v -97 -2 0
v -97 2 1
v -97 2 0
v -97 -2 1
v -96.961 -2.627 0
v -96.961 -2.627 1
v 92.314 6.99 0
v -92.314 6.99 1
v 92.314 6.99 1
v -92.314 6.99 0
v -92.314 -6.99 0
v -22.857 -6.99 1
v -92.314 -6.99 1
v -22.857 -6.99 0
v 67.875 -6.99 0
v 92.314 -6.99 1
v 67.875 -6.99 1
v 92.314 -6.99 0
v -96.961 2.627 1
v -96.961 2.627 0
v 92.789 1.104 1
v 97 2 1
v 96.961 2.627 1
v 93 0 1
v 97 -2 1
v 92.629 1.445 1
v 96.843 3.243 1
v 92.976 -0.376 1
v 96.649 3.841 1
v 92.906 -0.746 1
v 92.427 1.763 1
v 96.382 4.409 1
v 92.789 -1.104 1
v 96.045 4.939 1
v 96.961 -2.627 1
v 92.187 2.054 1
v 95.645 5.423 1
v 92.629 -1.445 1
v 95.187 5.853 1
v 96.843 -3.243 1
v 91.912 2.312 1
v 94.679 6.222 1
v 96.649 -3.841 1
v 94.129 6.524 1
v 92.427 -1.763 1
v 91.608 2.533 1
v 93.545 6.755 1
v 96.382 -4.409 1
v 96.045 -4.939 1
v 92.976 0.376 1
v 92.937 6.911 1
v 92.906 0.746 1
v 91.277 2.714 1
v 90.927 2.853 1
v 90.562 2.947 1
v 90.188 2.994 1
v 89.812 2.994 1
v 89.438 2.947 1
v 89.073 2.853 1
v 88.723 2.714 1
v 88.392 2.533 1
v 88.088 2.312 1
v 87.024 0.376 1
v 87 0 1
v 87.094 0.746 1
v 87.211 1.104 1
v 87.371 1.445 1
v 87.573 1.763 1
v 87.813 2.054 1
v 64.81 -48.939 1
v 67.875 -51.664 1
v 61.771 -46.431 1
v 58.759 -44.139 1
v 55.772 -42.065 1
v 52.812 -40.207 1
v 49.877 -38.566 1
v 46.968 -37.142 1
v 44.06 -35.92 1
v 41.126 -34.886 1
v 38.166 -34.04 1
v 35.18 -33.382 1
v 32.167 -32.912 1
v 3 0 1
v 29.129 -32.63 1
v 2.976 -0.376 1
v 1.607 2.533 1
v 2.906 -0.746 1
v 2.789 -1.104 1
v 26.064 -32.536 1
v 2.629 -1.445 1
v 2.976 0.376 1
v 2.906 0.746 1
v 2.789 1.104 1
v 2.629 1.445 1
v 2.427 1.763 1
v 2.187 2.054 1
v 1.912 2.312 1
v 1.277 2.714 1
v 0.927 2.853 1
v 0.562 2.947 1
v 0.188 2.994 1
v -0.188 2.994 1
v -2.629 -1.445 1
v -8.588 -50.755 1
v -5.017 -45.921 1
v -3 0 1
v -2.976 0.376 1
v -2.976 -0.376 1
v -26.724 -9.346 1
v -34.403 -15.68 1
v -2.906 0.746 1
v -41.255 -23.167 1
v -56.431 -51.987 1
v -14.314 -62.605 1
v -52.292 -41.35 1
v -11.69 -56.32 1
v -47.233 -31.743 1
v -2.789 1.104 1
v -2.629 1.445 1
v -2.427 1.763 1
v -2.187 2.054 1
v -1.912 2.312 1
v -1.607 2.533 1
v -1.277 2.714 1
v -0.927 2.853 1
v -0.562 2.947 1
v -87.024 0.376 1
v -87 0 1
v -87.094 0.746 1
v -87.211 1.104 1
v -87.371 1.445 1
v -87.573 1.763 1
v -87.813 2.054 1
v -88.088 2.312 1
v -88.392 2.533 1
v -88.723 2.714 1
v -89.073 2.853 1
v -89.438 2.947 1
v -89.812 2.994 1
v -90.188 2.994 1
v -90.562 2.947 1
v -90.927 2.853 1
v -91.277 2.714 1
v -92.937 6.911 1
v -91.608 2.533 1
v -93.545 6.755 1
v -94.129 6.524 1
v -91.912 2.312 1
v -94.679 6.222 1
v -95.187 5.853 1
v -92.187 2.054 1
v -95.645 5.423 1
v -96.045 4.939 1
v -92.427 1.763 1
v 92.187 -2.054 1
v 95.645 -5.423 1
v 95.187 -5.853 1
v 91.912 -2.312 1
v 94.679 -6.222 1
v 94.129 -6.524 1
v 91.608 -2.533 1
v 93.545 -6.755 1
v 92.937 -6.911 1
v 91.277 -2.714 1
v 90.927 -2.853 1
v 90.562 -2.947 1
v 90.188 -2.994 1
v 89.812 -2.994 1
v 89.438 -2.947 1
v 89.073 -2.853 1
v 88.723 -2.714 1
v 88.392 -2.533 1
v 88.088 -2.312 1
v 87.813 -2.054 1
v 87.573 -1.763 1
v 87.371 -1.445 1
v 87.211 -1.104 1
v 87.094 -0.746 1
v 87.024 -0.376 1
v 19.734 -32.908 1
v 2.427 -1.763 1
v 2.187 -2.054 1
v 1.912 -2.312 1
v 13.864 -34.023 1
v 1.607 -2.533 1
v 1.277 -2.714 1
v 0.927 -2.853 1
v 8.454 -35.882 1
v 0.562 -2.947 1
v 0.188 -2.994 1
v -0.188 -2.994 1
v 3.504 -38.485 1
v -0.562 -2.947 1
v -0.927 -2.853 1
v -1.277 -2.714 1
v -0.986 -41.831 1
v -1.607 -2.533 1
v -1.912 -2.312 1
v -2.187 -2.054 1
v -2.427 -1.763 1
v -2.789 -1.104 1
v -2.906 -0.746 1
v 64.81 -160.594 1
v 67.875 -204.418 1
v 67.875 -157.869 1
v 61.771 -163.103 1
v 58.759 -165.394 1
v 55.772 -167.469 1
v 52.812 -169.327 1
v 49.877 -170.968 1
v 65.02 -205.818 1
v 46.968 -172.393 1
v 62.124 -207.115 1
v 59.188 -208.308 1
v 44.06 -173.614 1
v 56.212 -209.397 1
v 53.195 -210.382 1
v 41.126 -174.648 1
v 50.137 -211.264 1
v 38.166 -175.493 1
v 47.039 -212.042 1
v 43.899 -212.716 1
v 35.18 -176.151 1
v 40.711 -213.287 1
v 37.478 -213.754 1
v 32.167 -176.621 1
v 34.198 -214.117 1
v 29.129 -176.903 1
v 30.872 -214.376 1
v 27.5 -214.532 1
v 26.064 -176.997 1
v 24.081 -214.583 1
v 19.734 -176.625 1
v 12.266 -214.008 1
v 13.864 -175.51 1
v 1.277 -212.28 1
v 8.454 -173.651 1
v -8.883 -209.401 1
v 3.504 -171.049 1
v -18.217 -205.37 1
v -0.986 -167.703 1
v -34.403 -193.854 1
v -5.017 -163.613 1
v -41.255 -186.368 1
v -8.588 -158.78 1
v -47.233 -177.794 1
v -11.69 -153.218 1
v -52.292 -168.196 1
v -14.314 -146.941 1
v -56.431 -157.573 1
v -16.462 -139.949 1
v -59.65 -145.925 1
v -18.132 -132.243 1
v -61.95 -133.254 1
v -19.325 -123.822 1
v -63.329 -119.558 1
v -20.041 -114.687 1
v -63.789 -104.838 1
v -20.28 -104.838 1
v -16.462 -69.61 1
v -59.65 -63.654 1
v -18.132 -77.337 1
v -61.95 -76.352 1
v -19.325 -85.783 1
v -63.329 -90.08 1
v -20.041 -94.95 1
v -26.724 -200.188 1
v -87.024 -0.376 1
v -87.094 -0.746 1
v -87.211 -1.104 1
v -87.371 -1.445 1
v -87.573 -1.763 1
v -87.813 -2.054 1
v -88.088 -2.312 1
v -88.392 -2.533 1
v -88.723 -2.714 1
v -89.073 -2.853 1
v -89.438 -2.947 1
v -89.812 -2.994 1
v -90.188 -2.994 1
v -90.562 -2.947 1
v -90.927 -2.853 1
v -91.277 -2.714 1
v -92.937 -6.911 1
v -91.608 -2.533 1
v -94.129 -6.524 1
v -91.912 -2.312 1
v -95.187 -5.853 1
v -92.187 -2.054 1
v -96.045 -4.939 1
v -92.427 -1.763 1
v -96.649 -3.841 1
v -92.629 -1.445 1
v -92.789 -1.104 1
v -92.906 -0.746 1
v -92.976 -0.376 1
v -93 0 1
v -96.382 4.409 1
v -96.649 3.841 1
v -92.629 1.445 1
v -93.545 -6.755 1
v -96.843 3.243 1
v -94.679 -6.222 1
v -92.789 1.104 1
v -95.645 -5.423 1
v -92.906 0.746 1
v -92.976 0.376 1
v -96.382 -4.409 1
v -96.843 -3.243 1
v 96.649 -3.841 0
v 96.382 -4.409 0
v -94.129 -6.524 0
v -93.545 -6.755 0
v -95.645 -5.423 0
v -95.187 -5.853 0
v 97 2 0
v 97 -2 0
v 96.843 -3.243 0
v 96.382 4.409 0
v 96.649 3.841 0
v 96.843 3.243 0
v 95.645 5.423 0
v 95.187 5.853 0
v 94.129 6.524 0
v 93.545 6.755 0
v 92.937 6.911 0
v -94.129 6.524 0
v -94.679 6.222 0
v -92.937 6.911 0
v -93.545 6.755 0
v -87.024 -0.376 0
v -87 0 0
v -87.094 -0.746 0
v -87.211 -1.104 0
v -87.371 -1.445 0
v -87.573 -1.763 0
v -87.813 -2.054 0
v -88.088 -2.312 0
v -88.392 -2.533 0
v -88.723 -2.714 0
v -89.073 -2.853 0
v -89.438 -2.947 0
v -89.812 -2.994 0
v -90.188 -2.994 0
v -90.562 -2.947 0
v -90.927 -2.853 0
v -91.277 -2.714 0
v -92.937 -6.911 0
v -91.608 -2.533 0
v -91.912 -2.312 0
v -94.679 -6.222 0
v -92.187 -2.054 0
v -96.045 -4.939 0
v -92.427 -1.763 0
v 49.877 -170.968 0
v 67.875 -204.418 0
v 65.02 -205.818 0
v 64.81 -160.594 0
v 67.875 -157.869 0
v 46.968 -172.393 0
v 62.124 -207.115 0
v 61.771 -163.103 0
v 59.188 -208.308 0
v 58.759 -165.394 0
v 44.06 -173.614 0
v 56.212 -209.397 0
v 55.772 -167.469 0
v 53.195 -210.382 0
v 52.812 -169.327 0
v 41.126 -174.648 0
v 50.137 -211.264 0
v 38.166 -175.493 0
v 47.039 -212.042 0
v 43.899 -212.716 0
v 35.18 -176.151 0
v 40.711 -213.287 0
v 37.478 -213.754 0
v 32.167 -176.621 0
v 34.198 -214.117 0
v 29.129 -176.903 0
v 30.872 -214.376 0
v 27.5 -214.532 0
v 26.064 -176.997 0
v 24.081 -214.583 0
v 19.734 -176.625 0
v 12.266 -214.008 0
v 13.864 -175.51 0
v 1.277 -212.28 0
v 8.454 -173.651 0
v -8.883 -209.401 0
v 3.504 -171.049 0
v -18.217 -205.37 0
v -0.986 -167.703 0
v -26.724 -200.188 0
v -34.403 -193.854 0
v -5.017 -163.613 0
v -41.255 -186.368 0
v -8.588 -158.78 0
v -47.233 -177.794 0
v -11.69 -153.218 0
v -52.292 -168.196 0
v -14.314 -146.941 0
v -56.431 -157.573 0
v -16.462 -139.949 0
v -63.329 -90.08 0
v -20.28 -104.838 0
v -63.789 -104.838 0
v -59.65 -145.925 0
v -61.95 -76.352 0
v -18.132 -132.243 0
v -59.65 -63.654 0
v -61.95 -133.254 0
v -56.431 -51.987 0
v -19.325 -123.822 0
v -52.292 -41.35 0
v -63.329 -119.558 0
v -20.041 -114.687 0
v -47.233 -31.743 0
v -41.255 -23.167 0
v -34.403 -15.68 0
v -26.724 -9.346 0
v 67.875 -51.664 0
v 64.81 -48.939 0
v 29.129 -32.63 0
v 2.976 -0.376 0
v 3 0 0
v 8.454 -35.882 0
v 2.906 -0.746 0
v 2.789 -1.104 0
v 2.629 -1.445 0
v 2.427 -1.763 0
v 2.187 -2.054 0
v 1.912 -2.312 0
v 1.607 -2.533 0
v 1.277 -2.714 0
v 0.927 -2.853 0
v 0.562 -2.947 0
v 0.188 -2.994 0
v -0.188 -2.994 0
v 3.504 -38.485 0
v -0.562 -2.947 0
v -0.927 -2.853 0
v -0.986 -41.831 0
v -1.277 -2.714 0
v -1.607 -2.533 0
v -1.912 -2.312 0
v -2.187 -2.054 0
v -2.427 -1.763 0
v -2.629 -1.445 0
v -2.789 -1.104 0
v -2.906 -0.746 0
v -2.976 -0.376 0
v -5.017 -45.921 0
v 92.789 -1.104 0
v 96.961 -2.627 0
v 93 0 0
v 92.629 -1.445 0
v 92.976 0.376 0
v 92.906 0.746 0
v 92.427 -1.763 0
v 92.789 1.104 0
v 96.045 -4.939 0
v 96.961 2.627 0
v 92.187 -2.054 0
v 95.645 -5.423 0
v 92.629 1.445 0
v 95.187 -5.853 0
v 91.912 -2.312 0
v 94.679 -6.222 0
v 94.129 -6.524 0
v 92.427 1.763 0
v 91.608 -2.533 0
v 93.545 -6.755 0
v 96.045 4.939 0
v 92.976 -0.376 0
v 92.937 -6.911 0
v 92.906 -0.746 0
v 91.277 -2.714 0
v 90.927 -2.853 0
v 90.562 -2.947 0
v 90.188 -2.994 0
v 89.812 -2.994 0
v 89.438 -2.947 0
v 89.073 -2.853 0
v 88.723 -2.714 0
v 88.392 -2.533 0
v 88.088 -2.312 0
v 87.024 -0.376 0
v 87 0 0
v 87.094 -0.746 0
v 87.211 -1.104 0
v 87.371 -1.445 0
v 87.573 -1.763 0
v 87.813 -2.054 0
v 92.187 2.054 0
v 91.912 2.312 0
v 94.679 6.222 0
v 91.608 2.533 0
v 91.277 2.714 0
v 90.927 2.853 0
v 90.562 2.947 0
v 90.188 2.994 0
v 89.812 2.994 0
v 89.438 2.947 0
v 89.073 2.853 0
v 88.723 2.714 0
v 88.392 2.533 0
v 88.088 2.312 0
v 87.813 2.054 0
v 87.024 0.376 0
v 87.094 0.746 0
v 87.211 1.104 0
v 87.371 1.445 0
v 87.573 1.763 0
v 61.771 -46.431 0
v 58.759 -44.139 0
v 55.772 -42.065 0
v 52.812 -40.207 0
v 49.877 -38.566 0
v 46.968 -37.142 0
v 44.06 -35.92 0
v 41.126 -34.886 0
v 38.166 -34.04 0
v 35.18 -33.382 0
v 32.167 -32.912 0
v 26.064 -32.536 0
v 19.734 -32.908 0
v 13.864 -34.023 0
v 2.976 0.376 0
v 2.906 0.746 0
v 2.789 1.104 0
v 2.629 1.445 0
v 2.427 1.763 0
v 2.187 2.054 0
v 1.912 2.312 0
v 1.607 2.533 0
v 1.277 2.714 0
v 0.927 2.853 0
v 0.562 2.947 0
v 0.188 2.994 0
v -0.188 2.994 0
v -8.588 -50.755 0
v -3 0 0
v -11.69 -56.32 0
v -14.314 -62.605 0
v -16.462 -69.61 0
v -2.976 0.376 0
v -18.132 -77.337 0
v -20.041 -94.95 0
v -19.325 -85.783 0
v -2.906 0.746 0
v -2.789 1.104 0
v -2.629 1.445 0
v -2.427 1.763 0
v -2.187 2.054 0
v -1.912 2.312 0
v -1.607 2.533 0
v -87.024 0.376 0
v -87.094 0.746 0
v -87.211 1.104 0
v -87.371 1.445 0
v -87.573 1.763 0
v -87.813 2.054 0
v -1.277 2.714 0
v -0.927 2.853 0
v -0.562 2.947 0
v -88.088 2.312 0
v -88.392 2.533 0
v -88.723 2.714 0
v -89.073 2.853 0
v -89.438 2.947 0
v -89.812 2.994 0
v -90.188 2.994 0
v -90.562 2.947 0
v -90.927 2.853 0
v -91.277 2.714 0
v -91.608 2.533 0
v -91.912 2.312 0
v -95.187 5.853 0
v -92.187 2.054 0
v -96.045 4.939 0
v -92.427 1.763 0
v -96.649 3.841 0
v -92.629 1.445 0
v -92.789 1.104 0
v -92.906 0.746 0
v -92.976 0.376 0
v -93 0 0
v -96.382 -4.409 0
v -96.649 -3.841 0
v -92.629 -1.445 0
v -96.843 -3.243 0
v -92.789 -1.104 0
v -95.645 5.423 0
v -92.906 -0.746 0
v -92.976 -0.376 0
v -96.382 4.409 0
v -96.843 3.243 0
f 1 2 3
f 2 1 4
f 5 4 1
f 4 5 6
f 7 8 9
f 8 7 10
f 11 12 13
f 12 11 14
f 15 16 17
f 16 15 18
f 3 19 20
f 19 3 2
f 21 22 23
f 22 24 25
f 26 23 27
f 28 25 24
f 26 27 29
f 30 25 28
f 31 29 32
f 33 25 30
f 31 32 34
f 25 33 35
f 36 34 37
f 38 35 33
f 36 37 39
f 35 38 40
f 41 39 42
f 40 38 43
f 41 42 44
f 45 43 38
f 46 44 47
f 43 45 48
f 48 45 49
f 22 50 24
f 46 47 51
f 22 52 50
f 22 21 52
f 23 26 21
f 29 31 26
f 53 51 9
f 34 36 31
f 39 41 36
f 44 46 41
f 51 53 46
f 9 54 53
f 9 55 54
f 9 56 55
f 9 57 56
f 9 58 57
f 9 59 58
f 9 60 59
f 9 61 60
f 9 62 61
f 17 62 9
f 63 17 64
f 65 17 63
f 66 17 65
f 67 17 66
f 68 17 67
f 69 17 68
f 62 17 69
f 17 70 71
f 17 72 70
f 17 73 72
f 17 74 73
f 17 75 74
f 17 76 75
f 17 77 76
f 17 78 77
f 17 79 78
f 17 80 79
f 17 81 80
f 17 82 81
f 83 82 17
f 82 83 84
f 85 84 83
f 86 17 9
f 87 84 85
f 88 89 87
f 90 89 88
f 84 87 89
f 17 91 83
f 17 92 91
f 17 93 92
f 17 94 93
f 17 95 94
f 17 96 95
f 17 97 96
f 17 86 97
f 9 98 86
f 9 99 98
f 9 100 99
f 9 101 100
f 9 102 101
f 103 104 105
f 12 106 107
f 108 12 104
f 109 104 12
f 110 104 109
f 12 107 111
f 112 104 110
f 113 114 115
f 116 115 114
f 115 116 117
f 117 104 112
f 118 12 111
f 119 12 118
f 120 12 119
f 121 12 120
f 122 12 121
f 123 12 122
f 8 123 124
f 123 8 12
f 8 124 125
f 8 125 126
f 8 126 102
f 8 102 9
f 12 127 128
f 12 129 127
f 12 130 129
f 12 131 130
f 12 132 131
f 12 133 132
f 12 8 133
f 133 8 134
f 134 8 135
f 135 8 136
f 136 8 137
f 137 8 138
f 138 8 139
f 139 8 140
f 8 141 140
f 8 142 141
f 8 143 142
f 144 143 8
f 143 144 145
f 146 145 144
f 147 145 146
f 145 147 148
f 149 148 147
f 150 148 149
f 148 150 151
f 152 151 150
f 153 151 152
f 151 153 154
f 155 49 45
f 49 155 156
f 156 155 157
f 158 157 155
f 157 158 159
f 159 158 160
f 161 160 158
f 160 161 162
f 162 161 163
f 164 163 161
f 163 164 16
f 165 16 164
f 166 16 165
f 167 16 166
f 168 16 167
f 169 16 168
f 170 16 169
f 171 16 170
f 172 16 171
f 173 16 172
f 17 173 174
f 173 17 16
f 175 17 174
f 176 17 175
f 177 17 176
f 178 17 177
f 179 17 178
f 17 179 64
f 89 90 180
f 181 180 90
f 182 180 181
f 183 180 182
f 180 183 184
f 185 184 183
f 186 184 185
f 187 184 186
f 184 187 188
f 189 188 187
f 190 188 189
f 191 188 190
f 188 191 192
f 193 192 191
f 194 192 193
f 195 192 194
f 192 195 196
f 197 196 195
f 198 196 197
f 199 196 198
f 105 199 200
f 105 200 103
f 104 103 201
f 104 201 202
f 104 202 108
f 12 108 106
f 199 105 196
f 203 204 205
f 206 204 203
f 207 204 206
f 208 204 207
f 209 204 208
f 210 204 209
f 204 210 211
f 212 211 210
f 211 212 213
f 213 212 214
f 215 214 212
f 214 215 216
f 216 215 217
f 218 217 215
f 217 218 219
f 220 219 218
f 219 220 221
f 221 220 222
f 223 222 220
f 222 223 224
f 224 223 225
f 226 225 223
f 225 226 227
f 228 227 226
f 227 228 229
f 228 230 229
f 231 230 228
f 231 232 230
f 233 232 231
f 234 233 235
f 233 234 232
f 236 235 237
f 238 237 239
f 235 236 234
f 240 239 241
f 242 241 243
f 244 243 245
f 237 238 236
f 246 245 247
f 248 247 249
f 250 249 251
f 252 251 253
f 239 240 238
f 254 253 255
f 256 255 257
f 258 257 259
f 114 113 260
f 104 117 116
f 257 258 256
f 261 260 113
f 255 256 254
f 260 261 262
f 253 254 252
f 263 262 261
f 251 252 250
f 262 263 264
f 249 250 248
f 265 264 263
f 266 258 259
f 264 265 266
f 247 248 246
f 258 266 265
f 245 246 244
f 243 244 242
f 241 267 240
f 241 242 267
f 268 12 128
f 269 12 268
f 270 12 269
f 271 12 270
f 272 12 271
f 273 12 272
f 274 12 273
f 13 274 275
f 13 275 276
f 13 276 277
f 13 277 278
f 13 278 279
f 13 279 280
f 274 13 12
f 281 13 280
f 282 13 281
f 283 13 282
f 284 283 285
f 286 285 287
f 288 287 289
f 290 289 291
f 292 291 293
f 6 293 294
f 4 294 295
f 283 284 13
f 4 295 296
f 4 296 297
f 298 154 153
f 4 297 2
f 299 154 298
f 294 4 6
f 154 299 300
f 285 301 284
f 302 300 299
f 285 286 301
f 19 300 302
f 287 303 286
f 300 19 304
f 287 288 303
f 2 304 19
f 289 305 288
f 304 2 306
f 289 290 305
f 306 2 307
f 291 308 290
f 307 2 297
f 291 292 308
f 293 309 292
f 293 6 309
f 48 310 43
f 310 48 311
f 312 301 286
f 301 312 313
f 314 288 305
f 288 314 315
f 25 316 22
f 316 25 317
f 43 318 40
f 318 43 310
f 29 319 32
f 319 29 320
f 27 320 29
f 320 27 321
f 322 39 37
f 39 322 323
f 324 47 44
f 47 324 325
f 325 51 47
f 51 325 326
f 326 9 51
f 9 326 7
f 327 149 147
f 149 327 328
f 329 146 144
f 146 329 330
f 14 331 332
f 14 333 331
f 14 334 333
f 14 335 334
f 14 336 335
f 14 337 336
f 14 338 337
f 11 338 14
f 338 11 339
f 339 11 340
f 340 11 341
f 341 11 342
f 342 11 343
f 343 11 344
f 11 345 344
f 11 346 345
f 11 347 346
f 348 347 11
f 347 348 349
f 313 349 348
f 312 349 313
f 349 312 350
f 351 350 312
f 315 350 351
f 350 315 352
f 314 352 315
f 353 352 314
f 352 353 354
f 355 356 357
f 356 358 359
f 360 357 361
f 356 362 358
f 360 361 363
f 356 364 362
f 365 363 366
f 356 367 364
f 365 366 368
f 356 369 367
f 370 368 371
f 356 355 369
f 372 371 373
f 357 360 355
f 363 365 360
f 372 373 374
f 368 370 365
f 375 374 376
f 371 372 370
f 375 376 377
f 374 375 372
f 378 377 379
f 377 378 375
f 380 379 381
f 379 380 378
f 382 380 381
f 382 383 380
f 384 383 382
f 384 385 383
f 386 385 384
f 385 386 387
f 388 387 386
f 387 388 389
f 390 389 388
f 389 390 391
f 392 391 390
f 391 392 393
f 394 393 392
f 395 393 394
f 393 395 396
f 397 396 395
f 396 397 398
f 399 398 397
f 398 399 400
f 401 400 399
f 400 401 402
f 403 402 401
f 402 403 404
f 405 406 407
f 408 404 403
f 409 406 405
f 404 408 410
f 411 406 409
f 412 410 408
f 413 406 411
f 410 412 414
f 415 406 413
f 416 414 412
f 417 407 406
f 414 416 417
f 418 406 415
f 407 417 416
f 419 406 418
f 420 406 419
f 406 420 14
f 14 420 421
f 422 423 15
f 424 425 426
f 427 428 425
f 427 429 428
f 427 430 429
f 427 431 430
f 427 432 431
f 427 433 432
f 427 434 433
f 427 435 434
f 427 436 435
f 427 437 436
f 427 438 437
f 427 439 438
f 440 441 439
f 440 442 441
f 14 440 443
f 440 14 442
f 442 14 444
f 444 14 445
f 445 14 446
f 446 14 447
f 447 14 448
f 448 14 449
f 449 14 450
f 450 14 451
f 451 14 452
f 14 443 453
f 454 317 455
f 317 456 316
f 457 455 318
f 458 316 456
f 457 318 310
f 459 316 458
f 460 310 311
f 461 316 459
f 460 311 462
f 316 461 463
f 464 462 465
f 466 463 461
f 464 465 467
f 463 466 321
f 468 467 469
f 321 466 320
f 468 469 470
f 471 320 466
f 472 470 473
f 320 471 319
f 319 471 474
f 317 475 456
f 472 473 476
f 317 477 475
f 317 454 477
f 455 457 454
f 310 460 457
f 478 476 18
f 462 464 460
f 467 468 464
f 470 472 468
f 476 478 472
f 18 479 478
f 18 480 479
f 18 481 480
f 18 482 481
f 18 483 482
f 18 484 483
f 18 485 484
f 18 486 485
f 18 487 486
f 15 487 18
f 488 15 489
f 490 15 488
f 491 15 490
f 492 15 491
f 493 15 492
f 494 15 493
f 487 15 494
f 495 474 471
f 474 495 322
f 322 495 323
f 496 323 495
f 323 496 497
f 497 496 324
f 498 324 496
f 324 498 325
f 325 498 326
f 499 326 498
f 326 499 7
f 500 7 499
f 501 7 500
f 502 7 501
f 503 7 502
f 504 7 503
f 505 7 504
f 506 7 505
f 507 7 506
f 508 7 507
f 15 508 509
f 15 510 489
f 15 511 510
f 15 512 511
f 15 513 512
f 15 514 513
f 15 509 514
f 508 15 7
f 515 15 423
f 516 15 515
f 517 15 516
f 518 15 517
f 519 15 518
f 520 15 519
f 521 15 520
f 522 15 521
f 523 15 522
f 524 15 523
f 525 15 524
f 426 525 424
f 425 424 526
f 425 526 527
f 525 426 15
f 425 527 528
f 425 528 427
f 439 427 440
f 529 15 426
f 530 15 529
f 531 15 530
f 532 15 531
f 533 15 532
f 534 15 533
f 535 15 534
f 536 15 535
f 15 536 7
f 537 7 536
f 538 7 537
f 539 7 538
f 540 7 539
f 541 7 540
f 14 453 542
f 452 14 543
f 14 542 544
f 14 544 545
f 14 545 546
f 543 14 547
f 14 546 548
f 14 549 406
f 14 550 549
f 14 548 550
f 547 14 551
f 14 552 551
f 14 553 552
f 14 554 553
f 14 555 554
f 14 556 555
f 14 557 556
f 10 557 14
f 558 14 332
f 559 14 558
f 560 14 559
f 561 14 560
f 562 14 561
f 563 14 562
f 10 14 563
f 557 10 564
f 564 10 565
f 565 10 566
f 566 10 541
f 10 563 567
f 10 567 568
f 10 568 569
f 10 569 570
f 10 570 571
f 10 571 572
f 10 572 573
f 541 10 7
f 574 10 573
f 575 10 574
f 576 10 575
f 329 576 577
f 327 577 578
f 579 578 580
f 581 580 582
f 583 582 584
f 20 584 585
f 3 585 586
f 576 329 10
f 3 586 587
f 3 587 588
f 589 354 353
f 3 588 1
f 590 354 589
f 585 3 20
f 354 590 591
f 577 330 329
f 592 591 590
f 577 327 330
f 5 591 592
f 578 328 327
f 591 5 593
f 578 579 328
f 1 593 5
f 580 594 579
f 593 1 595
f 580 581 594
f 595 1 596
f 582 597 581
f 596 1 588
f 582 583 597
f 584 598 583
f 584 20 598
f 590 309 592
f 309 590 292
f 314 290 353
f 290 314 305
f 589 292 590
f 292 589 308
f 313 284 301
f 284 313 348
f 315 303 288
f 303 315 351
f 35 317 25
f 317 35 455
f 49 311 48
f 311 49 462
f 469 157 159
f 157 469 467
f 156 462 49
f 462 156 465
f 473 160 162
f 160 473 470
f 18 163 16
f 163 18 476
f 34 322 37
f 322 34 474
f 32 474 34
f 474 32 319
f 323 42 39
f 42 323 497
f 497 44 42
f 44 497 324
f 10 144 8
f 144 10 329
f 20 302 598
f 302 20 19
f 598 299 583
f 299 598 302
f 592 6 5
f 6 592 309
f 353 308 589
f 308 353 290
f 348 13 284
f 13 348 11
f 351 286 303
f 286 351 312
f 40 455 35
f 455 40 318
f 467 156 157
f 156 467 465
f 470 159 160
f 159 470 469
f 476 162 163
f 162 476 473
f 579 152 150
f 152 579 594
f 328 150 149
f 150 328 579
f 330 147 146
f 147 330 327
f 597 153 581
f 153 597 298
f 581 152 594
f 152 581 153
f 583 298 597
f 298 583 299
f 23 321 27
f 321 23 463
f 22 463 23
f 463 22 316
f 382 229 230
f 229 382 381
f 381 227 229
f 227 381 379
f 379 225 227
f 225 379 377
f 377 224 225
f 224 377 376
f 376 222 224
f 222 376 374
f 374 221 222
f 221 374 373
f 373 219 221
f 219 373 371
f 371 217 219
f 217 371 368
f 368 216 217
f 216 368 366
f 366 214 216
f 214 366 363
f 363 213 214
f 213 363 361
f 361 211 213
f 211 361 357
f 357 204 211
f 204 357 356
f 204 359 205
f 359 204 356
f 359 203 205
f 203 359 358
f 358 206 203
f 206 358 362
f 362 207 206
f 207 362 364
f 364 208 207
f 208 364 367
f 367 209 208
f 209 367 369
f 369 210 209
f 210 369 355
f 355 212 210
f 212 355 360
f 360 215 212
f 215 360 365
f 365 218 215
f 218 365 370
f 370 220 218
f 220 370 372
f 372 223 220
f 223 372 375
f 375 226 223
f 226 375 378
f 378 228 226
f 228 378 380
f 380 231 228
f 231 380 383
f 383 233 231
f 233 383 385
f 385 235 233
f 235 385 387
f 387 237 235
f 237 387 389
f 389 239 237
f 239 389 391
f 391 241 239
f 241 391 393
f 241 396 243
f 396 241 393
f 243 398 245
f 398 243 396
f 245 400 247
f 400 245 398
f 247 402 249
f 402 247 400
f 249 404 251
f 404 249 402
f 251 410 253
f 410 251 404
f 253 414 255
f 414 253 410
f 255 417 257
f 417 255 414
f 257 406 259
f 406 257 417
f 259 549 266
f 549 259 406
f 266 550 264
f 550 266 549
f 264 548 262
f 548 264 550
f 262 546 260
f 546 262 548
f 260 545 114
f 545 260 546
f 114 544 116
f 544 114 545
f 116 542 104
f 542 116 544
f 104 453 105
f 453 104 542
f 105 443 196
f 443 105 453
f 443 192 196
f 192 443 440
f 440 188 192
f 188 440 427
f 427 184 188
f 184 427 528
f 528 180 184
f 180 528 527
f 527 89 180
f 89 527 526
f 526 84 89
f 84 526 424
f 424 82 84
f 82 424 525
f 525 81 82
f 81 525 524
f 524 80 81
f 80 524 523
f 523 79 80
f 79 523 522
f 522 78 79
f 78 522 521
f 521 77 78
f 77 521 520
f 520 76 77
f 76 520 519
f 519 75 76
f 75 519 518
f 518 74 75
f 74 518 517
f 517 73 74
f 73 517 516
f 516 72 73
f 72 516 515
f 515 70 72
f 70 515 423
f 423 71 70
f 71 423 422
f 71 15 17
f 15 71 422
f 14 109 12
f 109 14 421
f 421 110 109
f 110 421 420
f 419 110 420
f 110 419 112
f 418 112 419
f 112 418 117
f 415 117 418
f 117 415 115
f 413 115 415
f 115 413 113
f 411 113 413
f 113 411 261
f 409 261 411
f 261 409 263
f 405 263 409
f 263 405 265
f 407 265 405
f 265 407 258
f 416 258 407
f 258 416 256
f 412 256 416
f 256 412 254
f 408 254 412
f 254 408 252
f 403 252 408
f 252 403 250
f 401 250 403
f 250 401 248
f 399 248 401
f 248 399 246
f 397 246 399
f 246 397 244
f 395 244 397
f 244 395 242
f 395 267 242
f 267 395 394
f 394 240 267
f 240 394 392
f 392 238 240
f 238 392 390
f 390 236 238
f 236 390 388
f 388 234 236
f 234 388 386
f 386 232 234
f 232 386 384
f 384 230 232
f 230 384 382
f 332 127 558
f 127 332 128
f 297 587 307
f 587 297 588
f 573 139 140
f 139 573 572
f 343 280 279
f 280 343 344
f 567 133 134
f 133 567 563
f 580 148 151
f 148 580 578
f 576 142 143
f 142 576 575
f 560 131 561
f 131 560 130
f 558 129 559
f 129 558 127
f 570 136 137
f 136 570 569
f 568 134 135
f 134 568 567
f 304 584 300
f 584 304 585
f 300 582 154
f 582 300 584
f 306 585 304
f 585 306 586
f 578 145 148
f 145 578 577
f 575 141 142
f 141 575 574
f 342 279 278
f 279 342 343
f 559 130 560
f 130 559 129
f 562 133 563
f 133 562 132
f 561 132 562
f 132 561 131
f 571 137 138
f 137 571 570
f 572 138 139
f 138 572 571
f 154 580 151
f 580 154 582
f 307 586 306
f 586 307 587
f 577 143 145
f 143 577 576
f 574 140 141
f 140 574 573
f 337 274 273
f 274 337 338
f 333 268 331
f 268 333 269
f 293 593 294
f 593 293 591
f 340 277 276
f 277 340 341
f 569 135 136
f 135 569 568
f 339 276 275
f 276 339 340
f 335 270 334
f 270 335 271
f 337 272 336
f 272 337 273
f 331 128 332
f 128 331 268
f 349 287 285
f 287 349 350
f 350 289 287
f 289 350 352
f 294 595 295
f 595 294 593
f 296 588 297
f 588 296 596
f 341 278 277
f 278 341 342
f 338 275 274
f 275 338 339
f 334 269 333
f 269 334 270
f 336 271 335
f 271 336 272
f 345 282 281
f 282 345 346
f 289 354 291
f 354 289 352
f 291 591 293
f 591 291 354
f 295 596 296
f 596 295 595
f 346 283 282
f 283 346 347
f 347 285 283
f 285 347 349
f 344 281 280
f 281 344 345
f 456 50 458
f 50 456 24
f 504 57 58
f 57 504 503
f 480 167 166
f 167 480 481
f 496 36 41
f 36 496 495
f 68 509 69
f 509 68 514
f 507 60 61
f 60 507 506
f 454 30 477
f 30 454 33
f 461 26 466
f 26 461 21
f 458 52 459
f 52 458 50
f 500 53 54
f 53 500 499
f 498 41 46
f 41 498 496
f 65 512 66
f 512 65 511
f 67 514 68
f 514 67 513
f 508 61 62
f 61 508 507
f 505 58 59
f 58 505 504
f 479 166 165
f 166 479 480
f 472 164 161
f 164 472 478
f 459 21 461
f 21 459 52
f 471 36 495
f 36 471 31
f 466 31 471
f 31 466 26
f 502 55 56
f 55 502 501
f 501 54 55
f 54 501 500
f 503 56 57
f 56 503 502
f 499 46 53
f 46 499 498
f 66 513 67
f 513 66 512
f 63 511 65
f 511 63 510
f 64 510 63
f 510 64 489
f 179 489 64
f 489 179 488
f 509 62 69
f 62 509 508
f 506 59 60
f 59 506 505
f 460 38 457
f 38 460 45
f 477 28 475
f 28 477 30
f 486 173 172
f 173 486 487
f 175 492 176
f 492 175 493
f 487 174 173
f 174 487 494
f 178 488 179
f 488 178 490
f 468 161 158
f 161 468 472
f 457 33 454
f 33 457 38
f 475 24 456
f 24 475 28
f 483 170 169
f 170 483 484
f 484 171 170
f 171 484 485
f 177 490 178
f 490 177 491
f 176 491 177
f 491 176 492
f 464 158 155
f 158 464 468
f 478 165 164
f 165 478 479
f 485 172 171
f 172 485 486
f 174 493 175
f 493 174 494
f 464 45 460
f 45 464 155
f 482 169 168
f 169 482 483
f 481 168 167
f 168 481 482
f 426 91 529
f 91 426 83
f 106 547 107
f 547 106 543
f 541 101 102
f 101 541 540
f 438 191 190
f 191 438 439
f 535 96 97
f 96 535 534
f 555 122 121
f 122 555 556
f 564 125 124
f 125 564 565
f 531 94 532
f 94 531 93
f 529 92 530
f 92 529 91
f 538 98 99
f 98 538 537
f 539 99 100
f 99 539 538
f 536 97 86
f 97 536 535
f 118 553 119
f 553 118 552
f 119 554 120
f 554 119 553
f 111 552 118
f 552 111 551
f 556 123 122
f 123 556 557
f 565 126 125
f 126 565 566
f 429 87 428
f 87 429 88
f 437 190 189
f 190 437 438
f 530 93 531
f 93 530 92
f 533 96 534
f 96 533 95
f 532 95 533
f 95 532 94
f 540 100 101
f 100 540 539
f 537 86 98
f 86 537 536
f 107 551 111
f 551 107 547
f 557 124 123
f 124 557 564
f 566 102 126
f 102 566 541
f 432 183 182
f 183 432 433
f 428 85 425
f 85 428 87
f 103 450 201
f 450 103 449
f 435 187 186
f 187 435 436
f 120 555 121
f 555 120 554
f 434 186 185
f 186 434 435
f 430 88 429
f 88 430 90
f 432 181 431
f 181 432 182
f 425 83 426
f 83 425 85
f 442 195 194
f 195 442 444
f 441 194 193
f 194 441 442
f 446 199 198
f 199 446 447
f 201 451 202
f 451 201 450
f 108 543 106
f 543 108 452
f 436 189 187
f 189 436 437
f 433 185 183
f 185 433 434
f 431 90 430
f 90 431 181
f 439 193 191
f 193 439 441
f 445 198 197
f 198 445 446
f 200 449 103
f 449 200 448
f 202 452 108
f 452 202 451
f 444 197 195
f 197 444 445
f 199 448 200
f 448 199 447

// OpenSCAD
$fn = 50;


difference() {
	union() {
		translate(v = [0, 0, 0]) {
			rotate(a = [0, 0, 0]) {
				hull() {
					translate(v = [-92.0000000000, 2.0000000000, 0]) {
						rotate(a = [0, 0, 0]) {
							translate(v = [0, 0, 0]) {
								rotate(a = [0, 0, 0]) {
									cylinder(h = 1, r = 5);
								}
							}
						}
					}
					translate(v = [92.0000000000, 2.0000000000, 0]) {
						rotate(a = [0, 0, 0]) {
							translate(v = [0, 0, 0]) {
								rotate(a = [0, 0, 0]) {
									cylinder(h = 1, r = 5);
								}
							}
						}
					}
					translate(v = [-92.0000000000, -2.0000000000, 0]) {
						rotate(a = [0, 0, 0]) {
							translate(v = [0, 0, 0]) {
								rotate(a = [0, 0, 0]) {
									cylinder(h = 1, r = 5);
								}
							}
						}
					}
					translate(v = [92.0000000000, -2.0000000000, 0]) {
						rotate(a = [0, 0, 0]) {
							translate(v = [0, 0, 0]) {
								rotate(a = [0, 0, 0]) {
									cylinder(h = 1, r = 5);
								}
							}
						}
					}
				}
			}
		}
		translate(v = [0, 0, 0]) {
			rotate(a = [0, 0, 0]) {
				linear_extrude(height = 1) {
					text(font = "DejaVu Sans Mono:style=Bold", halign = "center", size = 209.0000000000, text = "C", valign = "top");
				}
			}
		}
	}
	union() {
		translate(v = [-90.0000000000, 0.0000000000, -125.0000000000]) {
			rotate(a = [0, 0, 0]) {
				cylinder(h = 250, r = 3.0000000000);
			}
		}
		translate(v = [90.0000000000, 0.0000000000, -125.0000000000]) {
			rotate(a = [0, 0, 0]) {
				cylinder(h = 250, r = 3.0000000000);
			}
		}
		translate(v = [90.0000000000, 0.0000000000, -125.0000000000]) {
			rotate(a = [0, 0, 0]) {
				cylinder(h = 250, r = 3.0000000000);
			}
		}
		translate(v = [0, 0, -125.0000000000]) {
			rotate(a = [0, 0, 0]) {
				cylinder(h = 250, r = 3.0000000000);
			}
		}
	}
}
